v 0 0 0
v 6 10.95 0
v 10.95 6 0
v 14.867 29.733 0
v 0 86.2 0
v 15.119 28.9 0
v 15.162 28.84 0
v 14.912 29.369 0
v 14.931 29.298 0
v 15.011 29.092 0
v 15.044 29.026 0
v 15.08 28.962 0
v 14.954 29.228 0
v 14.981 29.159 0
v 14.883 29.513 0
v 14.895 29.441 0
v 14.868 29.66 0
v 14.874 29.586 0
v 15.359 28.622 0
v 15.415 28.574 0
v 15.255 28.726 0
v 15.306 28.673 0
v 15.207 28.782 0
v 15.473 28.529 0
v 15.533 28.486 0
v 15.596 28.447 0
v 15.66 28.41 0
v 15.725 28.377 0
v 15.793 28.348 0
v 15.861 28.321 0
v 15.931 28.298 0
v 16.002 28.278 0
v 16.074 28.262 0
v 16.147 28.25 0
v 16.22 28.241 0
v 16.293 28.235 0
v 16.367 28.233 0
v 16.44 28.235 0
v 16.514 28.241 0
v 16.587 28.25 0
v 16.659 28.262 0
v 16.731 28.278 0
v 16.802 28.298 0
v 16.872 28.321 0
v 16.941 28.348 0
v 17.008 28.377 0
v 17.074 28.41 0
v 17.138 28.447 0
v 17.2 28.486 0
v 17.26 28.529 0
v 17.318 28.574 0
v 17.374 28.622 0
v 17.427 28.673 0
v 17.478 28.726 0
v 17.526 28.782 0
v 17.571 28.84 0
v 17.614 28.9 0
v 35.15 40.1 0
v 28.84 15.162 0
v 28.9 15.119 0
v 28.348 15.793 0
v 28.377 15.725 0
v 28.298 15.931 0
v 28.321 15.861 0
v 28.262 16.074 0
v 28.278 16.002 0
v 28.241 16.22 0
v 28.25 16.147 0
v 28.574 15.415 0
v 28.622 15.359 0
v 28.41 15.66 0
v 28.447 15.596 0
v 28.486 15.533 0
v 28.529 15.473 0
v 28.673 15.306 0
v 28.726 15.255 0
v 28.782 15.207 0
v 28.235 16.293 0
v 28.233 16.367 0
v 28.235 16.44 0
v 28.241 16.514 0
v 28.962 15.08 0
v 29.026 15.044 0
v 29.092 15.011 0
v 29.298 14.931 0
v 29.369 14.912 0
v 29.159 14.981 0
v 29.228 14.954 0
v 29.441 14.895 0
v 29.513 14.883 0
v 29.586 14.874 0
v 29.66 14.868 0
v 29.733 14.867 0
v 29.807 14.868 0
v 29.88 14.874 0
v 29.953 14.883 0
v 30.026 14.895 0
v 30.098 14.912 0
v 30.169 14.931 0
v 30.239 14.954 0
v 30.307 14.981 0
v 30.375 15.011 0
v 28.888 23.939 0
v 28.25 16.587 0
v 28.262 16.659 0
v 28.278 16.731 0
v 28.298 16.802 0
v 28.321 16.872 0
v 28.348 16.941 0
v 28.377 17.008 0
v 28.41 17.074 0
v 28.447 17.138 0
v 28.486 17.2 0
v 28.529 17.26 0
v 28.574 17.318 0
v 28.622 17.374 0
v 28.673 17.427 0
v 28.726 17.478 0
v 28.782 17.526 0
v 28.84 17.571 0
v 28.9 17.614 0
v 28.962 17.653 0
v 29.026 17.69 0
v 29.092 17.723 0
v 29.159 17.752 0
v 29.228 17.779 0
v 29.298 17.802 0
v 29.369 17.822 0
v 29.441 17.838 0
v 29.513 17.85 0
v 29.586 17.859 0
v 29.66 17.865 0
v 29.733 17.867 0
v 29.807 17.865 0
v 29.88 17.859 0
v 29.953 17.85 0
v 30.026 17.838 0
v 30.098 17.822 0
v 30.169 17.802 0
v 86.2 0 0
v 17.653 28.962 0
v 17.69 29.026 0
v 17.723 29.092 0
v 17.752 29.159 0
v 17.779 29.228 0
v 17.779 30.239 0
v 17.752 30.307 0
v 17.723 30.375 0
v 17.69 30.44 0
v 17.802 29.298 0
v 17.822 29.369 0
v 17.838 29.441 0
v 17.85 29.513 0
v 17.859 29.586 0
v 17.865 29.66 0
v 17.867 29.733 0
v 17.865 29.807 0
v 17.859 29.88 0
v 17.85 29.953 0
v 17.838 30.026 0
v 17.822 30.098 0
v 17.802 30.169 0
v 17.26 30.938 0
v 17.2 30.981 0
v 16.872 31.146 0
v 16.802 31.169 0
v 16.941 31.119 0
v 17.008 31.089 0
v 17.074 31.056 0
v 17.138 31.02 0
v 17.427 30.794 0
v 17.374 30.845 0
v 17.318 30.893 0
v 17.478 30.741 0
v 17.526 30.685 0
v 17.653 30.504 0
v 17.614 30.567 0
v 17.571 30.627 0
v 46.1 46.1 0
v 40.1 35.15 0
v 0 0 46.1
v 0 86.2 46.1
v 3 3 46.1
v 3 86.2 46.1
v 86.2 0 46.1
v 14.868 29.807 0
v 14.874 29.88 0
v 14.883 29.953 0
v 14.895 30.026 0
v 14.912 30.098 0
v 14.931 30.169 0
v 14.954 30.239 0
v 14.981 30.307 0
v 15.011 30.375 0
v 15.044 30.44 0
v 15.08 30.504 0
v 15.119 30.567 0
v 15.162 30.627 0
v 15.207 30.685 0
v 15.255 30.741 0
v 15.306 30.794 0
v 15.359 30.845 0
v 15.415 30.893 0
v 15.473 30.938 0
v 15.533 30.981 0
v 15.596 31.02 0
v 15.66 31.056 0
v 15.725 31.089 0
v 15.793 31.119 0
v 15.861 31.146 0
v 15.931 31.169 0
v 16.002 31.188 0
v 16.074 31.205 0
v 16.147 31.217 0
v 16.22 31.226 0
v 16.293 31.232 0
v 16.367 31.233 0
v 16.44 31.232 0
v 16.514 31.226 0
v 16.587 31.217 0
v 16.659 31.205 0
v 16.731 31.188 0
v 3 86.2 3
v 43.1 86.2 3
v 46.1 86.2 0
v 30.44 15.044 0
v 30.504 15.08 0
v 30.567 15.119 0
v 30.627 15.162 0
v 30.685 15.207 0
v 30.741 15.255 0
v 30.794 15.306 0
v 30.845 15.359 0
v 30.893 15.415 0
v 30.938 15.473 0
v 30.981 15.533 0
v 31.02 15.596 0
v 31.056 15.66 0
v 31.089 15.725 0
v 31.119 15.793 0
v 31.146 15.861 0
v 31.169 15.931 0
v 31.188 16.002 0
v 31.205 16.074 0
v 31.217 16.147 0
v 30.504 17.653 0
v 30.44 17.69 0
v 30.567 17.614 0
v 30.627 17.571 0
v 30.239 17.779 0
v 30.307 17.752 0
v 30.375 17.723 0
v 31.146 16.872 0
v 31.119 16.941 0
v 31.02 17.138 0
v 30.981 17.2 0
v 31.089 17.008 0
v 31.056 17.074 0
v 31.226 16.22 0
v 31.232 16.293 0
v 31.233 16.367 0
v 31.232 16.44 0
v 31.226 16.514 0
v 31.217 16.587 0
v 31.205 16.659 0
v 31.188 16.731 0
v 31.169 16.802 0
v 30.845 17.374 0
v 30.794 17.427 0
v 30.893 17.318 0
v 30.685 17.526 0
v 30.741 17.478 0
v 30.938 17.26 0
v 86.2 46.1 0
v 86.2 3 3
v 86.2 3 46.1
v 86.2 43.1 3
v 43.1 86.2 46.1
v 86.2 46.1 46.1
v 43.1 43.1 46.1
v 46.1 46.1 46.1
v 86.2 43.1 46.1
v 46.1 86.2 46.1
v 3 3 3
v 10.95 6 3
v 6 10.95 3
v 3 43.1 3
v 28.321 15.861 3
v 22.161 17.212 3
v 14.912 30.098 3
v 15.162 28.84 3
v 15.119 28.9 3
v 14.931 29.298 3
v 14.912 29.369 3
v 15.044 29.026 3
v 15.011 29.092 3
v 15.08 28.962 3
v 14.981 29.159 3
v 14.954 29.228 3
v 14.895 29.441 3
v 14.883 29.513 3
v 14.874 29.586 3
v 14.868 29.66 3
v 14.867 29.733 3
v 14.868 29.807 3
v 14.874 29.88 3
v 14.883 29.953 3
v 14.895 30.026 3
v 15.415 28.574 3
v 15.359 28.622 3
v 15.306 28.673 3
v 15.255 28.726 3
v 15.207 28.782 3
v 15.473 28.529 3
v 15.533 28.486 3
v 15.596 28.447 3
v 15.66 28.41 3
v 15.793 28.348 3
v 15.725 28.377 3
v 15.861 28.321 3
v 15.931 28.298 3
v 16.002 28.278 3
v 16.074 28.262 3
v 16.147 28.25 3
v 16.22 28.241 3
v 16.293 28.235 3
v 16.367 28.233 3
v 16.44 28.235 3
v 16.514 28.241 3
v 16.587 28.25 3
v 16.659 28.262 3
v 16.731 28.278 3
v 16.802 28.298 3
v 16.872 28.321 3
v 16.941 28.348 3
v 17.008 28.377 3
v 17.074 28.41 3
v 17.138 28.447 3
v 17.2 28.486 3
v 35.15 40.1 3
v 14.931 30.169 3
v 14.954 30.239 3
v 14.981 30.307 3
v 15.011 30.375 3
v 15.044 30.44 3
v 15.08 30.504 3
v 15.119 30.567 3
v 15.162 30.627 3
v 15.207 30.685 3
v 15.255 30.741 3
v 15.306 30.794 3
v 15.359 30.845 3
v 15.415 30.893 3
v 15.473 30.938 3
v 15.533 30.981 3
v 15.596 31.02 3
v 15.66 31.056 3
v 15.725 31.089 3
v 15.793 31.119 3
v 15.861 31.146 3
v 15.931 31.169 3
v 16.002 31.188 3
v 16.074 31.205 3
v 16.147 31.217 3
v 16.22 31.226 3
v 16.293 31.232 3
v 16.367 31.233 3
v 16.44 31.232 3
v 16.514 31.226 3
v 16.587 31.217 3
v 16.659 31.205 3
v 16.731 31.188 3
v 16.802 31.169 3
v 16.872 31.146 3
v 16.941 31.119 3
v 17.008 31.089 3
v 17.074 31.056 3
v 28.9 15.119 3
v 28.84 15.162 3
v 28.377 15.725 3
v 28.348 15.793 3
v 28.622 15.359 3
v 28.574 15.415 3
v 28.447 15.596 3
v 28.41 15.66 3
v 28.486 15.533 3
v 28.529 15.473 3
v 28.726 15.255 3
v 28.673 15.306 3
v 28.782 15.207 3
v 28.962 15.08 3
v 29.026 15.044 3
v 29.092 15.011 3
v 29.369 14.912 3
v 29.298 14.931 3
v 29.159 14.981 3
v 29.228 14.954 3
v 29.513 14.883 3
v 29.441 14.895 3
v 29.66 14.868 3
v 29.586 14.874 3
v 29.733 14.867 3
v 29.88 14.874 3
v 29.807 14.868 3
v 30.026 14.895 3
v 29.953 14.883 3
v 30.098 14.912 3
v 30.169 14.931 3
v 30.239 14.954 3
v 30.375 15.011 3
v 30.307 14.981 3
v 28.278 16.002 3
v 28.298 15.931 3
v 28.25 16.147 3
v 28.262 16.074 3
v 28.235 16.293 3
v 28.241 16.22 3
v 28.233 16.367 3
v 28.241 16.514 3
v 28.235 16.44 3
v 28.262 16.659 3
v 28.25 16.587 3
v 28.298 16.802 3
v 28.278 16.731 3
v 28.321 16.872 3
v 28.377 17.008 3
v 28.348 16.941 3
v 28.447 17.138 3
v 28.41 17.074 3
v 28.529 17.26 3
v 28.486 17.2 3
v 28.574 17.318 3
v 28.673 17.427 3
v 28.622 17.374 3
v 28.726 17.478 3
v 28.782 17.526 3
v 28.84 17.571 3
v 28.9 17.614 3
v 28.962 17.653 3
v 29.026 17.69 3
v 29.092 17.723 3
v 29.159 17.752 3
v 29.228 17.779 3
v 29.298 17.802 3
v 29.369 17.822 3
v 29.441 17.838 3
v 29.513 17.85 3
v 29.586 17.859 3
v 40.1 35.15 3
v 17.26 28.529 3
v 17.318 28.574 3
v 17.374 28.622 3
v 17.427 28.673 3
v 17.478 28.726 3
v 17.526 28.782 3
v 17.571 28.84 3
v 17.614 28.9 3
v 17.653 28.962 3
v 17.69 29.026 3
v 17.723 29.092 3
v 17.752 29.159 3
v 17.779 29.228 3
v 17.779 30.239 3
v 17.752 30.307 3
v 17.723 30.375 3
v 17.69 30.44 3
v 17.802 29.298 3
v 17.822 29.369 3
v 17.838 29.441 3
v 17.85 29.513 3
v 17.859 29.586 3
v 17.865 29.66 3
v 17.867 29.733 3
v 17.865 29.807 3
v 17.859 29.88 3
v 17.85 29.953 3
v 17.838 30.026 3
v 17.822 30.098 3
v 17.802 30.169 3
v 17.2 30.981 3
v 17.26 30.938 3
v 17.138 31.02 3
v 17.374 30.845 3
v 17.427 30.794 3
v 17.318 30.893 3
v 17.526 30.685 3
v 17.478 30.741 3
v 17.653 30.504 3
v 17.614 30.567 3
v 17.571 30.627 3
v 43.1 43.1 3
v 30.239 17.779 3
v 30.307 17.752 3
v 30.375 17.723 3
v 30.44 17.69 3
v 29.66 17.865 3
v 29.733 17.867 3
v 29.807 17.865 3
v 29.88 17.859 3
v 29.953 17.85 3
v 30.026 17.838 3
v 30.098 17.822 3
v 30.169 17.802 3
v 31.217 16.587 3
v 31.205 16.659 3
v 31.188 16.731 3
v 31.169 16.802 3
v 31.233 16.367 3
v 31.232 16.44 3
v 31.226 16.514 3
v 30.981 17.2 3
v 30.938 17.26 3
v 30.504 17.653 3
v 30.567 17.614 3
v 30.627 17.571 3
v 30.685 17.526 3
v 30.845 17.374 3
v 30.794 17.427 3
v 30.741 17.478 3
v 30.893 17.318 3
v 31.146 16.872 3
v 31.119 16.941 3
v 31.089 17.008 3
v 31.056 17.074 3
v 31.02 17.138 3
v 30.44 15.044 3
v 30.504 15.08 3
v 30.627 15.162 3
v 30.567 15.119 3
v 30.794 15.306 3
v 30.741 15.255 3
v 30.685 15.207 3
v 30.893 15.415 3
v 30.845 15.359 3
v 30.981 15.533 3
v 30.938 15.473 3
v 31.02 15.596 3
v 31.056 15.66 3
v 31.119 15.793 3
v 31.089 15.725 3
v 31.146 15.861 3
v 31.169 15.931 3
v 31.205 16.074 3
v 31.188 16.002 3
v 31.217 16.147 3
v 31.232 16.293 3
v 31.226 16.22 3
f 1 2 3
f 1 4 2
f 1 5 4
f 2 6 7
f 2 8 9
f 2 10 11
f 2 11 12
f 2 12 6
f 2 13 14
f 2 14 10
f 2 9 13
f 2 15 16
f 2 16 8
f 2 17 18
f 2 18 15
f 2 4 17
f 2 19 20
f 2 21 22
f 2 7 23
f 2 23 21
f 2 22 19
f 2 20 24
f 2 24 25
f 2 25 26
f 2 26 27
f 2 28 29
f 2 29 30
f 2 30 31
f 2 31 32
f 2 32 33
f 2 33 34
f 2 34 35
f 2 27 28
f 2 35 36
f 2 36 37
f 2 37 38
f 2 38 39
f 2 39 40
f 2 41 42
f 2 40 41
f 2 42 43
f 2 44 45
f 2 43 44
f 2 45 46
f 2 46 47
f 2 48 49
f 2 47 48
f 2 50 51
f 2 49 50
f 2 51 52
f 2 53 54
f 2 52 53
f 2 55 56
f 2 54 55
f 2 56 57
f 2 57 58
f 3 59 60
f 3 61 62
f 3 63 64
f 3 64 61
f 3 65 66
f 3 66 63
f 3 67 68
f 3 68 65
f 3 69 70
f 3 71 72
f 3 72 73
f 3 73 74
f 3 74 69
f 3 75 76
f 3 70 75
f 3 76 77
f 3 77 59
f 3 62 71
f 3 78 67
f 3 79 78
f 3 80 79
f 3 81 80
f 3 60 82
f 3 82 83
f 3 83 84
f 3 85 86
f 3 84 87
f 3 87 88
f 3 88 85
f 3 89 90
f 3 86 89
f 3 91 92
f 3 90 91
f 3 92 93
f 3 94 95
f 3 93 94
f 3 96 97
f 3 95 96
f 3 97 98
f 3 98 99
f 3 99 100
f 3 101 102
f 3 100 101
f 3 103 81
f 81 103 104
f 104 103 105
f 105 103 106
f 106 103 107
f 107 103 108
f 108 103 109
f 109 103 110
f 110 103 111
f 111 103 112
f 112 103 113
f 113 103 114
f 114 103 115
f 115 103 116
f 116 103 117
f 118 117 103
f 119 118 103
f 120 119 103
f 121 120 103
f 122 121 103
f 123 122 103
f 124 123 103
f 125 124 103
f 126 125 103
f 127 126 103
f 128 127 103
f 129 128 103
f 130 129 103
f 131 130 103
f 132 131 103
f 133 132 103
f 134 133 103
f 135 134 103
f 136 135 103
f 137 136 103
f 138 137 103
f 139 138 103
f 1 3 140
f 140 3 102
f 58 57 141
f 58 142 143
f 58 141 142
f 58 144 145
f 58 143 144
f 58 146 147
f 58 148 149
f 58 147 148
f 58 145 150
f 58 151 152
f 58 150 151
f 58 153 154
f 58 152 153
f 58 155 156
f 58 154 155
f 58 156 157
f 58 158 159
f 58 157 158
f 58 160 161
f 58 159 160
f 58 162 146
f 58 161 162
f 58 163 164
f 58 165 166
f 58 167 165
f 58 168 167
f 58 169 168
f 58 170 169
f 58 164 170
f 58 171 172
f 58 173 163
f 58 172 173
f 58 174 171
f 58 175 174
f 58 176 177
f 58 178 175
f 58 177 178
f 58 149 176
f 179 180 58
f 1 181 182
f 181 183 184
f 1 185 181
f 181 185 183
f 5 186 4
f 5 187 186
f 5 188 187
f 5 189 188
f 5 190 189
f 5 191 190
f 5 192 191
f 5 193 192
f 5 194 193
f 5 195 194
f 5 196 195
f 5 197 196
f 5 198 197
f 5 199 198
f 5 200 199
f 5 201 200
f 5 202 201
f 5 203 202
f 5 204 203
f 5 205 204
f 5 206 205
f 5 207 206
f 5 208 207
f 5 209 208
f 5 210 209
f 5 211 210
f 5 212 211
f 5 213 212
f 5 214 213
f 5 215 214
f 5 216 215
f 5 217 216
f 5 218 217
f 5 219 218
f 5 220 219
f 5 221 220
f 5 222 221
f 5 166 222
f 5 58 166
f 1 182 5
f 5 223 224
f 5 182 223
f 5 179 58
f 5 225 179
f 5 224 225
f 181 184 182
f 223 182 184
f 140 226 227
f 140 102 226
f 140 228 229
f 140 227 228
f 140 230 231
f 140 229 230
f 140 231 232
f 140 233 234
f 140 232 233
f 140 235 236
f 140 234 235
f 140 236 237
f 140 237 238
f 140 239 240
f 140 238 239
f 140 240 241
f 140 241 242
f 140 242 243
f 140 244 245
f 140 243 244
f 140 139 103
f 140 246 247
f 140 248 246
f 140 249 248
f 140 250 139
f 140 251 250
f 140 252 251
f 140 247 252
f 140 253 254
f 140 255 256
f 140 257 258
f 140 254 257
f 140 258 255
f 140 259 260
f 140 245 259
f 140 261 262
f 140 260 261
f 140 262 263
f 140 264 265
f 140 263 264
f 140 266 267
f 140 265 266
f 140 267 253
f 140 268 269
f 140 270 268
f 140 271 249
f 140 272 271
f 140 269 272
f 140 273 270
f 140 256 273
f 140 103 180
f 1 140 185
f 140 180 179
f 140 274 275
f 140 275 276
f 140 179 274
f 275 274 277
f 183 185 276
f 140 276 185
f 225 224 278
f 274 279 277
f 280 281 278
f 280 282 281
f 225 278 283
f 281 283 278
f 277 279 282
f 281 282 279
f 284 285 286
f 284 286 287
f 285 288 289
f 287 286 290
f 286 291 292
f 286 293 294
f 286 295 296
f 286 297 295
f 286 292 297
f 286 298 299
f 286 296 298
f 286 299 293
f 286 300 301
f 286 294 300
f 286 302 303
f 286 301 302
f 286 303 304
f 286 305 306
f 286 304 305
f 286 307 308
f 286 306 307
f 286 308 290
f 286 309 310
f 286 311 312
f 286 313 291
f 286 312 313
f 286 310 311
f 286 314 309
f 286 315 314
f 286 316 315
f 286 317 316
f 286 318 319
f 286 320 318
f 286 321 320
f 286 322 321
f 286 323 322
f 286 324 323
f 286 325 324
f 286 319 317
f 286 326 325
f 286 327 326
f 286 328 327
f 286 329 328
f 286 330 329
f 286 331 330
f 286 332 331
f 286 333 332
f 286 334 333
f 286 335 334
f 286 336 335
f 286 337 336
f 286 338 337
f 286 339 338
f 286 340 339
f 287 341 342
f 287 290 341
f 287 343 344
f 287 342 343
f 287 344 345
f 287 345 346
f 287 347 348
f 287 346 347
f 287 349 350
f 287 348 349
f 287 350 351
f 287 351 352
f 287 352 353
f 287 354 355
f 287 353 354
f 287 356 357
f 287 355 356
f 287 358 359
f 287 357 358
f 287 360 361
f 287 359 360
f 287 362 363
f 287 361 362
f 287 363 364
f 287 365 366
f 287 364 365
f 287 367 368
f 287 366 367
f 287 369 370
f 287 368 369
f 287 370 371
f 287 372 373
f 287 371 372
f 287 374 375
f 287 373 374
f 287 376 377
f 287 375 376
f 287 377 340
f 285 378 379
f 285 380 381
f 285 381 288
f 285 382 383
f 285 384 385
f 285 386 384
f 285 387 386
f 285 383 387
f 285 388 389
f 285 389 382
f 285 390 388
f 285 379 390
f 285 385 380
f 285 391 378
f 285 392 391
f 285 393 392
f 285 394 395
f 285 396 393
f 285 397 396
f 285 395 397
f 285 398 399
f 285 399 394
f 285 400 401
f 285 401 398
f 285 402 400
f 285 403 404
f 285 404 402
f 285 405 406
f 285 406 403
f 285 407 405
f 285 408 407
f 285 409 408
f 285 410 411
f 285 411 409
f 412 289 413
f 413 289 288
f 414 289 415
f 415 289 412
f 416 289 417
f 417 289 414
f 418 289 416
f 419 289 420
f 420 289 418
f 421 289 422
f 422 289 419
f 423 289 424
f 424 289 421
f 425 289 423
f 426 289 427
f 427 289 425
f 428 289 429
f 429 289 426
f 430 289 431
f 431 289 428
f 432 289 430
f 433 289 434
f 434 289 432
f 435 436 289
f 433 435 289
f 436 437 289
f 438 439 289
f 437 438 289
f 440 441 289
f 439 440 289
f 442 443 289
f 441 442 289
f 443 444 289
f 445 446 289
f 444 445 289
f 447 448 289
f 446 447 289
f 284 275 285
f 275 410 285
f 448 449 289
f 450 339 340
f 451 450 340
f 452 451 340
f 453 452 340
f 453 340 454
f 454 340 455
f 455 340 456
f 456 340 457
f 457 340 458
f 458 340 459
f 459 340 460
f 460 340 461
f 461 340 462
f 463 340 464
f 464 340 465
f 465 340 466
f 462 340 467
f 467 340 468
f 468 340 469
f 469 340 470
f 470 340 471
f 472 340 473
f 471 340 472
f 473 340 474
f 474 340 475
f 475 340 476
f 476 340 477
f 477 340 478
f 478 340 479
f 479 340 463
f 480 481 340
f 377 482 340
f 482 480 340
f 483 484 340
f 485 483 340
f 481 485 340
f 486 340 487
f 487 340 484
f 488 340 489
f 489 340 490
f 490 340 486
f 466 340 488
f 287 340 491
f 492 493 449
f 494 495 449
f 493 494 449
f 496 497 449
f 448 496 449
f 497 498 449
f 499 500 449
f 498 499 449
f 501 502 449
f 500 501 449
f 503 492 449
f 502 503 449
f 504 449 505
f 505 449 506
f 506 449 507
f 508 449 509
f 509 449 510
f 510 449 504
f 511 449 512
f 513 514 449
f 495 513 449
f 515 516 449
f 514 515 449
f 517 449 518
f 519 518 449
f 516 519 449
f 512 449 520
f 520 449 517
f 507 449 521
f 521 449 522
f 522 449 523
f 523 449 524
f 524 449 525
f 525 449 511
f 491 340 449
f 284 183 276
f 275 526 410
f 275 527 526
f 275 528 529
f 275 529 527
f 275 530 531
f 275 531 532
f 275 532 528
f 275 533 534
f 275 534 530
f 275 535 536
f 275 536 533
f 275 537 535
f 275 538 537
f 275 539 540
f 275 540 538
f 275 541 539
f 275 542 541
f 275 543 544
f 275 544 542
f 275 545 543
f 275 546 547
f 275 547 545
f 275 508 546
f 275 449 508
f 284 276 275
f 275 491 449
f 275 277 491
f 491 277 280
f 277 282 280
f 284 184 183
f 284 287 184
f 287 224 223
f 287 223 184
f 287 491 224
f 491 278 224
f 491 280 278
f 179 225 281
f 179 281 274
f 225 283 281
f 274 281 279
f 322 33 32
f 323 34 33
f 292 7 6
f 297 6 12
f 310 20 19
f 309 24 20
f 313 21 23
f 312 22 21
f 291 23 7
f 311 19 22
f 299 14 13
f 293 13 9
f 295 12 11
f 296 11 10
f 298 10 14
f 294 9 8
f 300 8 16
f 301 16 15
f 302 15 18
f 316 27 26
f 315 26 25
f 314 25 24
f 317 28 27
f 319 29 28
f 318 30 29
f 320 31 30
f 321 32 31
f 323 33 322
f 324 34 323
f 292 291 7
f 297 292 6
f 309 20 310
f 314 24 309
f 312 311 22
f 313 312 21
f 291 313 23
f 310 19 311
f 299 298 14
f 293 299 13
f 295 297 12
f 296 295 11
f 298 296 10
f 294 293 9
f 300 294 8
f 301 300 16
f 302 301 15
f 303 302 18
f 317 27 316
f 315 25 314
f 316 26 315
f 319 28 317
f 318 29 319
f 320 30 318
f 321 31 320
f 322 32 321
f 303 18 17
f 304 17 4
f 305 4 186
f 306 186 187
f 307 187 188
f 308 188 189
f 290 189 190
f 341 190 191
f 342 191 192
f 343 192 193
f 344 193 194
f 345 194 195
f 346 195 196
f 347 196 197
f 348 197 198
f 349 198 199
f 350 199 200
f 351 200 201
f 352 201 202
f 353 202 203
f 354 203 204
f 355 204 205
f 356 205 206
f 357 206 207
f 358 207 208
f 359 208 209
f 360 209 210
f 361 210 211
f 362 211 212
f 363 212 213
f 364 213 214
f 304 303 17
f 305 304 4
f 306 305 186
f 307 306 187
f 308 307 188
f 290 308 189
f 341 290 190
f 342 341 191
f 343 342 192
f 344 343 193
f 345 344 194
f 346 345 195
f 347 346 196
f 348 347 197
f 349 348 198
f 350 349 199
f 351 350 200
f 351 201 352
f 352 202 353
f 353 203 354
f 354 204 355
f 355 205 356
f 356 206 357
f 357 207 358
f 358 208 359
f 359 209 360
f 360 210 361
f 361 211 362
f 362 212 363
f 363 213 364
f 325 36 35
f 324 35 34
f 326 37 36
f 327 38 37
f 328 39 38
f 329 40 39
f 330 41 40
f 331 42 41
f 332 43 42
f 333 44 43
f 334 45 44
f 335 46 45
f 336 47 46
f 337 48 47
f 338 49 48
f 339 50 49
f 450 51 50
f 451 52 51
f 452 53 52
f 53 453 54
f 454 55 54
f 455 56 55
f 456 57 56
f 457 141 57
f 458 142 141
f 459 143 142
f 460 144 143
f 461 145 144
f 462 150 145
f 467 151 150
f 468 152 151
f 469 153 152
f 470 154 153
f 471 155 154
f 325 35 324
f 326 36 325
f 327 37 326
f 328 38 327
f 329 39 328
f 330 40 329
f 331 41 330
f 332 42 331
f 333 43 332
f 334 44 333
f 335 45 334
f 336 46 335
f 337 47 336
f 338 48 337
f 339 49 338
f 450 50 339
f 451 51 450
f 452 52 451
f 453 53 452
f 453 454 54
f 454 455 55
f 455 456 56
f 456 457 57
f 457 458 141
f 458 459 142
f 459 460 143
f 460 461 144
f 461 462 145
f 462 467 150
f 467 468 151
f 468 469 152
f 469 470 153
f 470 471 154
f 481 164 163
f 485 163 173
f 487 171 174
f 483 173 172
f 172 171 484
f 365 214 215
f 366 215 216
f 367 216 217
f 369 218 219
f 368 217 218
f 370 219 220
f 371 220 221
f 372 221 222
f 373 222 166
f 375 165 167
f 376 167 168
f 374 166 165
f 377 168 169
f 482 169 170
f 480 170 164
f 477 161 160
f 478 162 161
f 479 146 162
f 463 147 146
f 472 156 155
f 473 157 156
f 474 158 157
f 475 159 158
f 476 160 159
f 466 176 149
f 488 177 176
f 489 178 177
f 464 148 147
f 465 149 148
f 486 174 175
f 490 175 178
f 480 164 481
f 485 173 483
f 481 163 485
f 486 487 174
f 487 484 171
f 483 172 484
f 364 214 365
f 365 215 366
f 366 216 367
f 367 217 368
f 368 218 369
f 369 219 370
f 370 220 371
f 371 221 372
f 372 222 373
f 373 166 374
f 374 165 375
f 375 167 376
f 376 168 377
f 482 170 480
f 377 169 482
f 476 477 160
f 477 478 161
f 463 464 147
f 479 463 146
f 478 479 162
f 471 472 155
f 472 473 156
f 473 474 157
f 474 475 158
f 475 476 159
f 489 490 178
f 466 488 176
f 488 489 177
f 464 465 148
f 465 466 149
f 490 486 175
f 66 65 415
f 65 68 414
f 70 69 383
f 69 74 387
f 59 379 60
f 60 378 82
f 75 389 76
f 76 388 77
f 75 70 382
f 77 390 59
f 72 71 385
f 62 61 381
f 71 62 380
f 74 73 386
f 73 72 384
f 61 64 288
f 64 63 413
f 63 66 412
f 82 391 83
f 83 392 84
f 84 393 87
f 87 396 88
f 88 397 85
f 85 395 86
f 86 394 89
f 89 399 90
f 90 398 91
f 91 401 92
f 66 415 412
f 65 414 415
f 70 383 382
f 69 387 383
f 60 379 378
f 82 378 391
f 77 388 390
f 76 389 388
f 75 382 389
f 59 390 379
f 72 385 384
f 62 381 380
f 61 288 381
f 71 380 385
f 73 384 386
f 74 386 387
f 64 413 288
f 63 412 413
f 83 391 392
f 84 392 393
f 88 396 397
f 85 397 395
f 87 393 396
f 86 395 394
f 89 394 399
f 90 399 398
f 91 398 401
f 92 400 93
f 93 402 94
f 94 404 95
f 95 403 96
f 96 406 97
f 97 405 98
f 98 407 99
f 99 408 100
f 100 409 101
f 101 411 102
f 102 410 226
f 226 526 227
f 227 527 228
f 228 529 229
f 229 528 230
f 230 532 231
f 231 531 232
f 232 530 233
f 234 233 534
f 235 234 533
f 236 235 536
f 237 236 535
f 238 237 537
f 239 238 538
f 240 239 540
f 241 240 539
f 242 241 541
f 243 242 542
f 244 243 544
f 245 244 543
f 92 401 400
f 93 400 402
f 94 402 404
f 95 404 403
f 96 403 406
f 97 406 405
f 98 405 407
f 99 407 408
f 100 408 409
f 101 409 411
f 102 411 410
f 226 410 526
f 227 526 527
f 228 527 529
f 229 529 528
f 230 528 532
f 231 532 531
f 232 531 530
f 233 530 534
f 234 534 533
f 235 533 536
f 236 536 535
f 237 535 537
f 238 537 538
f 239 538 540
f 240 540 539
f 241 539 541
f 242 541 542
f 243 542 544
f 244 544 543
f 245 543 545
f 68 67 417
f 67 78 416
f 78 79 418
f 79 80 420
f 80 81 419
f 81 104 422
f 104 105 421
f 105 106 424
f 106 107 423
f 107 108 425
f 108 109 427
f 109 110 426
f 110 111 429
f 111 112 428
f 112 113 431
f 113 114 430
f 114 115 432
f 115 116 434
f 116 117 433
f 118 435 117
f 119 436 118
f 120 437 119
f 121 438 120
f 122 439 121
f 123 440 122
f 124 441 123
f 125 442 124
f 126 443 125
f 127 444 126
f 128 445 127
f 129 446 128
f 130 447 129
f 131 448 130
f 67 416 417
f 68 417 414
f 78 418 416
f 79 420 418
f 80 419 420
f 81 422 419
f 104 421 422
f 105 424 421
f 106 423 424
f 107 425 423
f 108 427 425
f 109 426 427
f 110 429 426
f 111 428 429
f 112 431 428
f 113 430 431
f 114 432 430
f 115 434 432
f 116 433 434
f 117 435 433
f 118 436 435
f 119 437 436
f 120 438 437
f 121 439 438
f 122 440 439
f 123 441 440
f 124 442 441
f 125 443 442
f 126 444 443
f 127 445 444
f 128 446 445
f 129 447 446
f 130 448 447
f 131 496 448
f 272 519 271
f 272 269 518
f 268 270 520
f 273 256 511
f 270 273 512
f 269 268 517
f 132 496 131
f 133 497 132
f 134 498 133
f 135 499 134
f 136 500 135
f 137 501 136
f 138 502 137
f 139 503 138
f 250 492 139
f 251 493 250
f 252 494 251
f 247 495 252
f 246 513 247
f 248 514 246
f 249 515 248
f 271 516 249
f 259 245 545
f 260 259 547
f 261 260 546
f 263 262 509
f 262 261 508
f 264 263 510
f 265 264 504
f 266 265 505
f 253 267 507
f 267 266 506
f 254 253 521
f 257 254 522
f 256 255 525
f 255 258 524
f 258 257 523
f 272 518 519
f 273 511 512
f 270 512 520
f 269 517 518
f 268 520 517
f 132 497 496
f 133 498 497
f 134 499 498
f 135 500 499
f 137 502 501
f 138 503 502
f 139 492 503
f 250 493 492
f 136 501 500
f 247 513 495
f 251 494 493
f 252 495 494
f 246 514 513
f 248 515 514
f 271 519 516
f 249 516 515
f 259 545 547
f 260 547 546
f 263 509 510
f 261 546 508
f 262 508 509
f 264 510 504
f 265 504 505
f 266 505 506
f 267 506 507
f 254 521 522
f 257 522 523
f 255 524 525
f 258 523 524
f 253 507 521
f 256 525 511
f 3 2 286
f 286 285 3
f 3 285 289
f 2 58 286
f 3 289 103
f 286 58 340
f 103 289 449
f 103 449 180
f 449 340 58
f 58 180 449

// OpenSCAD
$fn = 128;

length = 40;
wall = 3;
depth = 40.1;
height = depth + wall * 2;

overcut = 5;
blade_cut_width = 0.8;
drill_hole_diameter = 3;

module subtract_drill_hole(drill_hole_position) {
  translate([drill_hole_position[0], drill_hole_position[1], -overcut])
    cylinder(h=wall + overcut * 2, d=drill_hole_diameter);
}

module subtract_miter_joint_drill_holes(miter_joint_origin) {
  subtract_drill_hole([miter_joint_origin[0] + depth / 3, miter_joint_origin[1] + depth * 2 / 3]);
  subtract_drill_hole([miter_joint_origin[0] + depth * 2 / 3, miter_joint_origin[1] + depth / 3]);
}

module subtract_miter_joint_observation_window(miter_joint_origin) {
  miter_observation_window_width = 7;
  miter_observation_window_end_clearance = wall;
  miter_observation_window_half_width = miter_observation_window_width / 2;
  miter_observation_window_start_distance = sqrt(2) * miter_observation_window_end_clearance + miter_observation_window_half_width;
  miter_observation_window_length = depth * sqrt(2) - 2 * sqrt(2) * miter_observation_window_end_clearance - miter_observation_window_width;

  translate([miter_joint_origin[0], miter_joint_origin[1], -overcut])
    rotate([0, 0, 45])
      translate([miter_observation_window_start_distance, -miter_observation_window_half_width, 0])
        cube([miter_observation_window_length, miter_observation_window_width, wall + overcut * 2]);
}

module add_drill_bushing(drill_hole_position) {
  drill_bushing_height = 30;
  drill_bushing_outer_diameter = drill_hole_diameter + wall * 3;

  difference() {
    translate([drill_hole_position[0], drill_hole_position[1], wall])
      cylinder(h=drill_bushing_height, d=drill_bushing_outer_diameter);
    translate([drill_hole_position[0], drill_hole_position[1], wall - overcut])
      cylinder(h=drill_bushing_height + overcut * 2, d=drill_hole_diameter);
  }
}

module corner() {
  difference() {
    cube([(depth + wall) * 2, (depth + wall) * 2, height]);
    translate([wall, wall, wall]) cube([depth * 3, depth, height]);
    translate([wall, wall, wall]) cube([depth, depth * 3, height]);
    translate([wall * 2 + depth, wall * 2 + depth, -overcut]) cube([depth + overcut, depth + overcut, height + overcut * 2]);
  }
}

module cover() {
  union() {
    difference() {
      union() {
        cube([depth * 2, depth, wall]);
        cube([depth, depth * 2, wall]);
      }

      subtract_miter_joint_observation_window([0, 0]);
      subtract_miter_joint_drill_holes([0, 0]);
    }

    add_drill_bushing([depth / 3, depth * 2 / 3]);
    add_drill_bushing([depth * 2 / 3, depth / 3]);
  }
}

difference() {
  corner();
  subtract_miter_joint_observation_window([wall, wall]);
  subtract_miter_joint_drill_holes([wall, wall]);
}

// translate([(depth + wall) * 2 + wall, 0, 0]) cover();
